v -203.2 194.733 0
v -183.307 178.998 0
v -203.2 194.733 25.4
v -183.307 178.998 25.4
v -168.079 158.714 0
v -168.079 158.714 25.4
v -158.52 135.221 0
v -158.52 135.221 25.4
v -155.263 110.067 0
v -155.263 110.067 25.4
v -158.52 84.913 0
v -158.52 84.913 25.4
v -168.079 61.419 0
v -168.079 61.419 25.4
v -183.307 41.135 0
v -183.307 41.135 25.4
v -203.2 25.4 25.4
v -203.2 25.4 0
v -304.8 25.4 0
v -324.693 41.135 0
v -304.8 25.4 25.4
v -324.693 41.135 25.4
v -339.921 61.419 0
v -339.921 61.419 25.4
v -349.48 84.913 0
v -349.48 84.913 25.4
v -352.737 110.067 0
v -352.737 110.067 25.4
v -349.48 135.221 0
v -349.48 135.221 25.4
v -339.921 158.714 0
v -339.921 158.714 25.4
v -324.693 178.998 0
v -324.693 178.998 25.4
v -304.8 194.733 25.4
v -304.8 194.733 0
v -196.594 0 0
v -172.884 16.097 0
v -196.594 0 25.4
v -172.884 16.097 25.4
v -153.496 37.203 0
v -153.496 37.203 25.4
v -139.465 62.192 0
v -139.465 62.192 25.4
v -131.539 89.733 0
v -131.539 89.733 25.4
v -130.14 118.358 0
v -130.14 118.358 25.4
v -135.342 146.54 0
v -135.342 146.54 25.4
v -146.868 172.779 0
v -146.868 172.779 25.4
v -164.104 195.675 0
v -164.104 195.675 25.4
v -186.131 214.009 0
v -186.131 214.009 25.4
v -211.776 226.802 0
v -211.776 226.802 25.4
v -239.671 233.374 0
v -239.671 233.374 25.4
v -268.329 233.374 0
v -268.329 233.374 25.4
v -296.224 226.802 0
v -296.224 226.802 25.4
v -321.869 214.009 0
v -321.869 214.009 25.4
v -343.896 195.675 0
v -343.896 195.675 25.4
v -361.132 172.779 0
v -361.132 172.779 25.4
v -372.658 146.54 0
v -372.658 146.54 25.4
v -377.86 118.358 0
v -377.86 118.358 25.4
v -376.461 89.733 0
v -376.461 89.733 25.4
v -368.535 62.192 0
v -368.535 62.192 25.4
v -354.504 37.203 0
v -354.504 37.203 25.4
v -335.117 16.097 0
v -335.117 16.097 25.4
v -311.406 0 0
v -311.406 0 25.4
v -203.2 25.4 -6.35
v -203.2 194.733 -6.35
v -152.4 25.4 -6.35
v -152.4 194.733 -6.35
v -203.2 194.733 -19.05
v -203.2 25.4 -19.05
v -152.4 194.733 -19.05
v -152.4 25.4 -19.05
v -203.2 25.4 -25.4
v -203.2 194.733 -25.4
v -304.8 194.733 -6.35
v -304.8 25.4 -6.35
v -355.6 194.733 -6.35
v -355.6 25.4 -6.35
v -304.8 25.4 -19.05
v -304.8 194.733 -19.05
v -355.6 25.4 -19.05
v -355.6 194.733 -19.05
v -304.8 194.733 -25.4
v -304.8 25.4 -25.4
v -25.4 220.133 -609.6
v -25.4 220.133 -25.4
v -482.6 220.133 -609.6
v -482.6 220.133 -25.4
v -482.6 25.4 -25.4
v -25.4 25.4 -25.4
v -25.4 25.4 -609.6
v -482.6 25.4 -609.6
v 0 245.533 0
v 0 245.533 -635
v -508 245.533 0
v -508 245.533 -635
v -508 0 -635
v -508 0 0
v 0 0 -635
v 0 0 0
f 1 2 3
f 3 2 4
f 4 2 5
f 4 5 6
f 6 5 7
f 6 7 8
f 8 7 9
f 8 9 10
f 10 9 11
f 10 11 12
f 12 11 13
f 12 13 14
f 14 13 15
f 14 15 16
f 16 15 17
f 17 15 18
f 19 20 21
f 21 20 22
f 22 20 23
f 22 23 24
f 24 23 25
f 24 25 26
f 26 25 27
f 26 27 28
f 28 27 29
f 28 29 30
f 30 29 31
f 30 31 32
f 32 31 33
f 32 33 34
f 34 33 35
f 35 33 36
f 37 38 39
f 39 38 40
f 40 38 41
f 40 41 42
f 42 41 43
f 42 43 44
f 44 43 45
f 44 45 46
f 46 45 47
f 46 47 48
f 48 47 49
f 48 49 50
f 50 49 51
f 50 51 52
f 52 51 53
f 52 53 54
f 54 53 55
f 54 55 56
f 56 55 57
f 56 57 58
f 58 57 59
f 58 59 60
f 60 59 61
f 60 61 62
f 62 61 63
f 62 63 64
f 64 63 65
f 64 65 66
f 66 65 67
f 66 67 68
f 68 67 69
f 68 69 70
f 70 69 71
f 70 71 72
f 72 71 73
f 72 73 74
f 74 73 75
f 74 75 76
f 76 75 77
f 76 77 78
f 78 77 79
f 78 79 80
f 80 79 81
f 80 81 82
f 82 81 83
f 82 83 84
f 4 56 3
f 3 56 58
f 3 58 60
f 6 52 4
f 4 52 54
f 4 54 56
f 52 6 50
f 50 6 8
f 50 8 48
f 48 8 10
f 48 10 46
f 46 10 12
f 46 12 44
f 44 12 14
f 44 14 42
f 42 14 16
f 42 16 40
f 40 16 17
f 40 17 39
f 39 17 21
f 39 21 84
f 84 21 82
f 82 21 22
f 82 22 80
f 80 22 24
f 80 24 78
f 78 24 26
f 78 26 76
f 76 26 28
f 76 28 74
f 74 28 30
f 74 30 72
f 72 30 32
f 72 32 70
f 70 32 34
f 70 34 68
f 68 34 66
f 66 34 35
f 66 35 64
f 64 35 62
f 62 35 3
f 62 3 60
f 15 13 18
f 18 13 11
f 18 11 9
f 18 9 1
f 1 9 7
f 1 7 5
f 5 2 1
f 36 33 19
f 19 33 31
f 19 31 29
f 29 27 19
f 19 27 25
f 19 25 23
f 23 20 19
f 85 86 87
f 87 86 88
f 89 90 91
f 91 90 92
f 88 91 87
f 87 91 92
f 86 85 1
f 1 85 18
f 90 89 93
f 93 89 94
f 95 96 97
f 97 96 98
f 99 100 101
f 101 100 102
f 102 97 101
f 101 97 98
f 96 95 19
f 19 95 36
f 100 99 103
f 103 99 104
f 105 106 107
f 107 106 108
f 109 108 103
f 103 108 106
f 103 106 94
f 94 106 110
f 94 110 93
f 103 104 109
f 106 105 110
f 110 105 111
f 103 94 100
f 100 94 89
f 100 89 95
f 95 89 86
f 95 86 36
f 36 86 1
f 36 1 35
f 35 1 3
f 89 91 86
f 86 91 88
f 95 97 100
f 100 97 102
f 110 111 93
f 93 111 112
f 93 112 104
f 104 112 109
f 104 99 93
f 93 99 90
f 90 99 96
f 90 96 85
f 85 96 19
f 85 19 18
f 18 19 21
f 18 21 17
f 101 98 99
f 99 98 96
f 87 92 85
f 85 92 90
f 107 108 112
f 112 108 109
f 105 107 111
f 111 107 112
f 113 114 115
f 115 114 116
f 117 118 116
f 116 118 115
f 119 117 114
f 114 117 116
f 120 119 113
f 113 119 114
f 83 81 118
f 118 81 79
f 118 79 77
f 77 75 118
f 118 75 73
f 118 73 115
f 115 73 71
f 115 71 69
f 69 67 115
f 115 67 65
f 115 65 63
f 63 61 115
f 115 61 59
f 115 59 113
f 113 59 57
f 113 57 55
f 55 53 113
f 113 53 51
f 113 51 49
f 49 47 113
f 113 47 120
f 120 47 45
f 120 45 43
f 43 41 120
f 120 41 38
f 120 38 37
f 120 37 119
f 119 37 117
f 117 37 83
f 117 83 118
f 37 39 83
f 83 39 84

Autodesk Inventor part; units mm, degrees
ref_plane "YZ Plane" through (0, 0, 0) normal (1, 0, 0) x (0, 1, 0)
ref_plane "XZ Plane" through (0, 0, 0) normal (0, 1, 0) x (-1, 0, 0)
sketch "Sketch1" plane through (0, 0, 0) normal (0, 1, 0) x (-1, 0, 0)
  line L0 (0, 0) -> (508, 0)
  line L1 (508, 0) -> (508, -635)
  line L2 (508, -635) -> (0, -635)
  line L3 (0, -635) -> (0, 0)
  dimension "d0" = 508
  dimension "d1" = 635
extrude "floor" add sketch "Sketch1" along normal blind 25.4
sketch "Sketch4" plane through (0, 25.4, 0) normal (0, 1, 0) x (1, 0, 0)
  line L0 (-508, 0) -> (0, 0) projected
  line L1 (0, 0) -> (0, 635) projected
  line L2 (0, 0) -> (0, 635)
  line L3 (0, 635) -> (-508, 635) projected
  line L4 (0, 635) -> (-508, 635)
  line L5 (-508, 635) -> (-508, 0)
  line L6 (-508, 0) -> (0, 0)
  line L7 (-25.4, 25.4) -> (-482.6, 25.4)
  line L8 (-482.6, 25.4) -> (-482.6, 609.6)
  line L9 (-482.6, 609.6) -> (-25.4, 609.6)
  line L10 (-25.4, 609.6) -> (-25.4, 25.4)
  dimension "d11" = 25.4
  dimension "d12" = 25.4
  dimension "d13" = 25.4
  dimension "d14" = 25.4
extrude "walls" add sketch "Sketch4" along normal blind 220.1333
sketch "Sketch5" plane through (-508, 0, 0) normal (0, 0, 1) x (1, 0, 0)
  line L0 (25.4, 25.4) -> (482.6, 25.4) projected
  line L1 (254, 25.4) -> (304.8, 25.4)
  line L2 (304.8, 25.4) -> (304.8, 194.7333)
  line L3 (304.8, 194.7333) -> (254, 194.7333)
  line L4 (254, 194.7333) -> (254, 25.4)
  line L5 (254, 25.4) -> (203.2, 25.4)
  line L6 (203.2, 25.4) -> (203.2, 194.7333)
  line L7 (203.2, 194.7333) -> (254, 194.7333)
  point P0 (508, 0)
  dimension "d17" = 50.8
  dimension "d18" = 169.3333
extrude "doorframe" cut sketch "Sketch5" against normal blind 220.1333
sketch "Sketch7" plane through (0, 245.5333, 0) normal (0, 1, 0) x (1, 0, 0)
  line L0 (-482.6, 25.4) -> (-482.6, 609.6) projected
  line L1 (-25.4, 25.4) -> (-25.4, 609.6) projected
  line L2 (-482.6, 609.6) -> (-25.4, 609.6)
  line L3 (-25.4, 609.6) -> (-25.4, 25.4)
  line L4 (-25.4, 25.4) -> (-482.6, 25.4)
  line L5 (-482.6, 25.4) -> (-482.6, 609.6)
  point P0 (0, 0)
extrude "ceiling" add sketch "Sketch7" against normal blind 25.4
sketch "Sketch8" plane through (-304.8, 25.4, 0) normal (1, 0, 0) x (0, 0, -1)
  line L0 (12.7, 169.3333) -> (19.05, 169.3333)
  line L1 (19.05, 169.3333) -> (19.05, 0)
  line L2 (19.05, 0) -> (6.35, 0)
  line L3 (6.35, 0) -> (6.35, 169.3333)
  line L4 (12.7, 169.3333) -> (6.35, 169.3333)
  point P0 (0, -25.4)
  point P1 (0, 169.3333)
  point P2 (25.4, 169.3333)
  point P3 (0, 0)
  point P4 (25.4, 0)
  dimension "d24" = 6.35
  dimension "d25" = 12.7
  dimension "d28" = 169.3333
extrude "left door slot" cut sketch "Sketch8" against normal blind 50.8
ref_plane "mirror door slot" through (-254, 25.4, 0) normal (1, 0, 0) x (0, 0, -1)
mirror "right door slot" about plane through (-254, 25.4, 0) normal (1, 0, 0) of "left door slot"
sketch "Sketch10" plane through (-508, 0, 0) normal (0, 0, 1) x (1, 0, 0)
  line L0 (203.2, 194.7333) -> (304.8, 194.7333)
  line L1 (203.2, 25.4) -> (304.8, 25.4)
  arc A0 (311.4059, 0) -> (196.5941, 0) centre (254, 110.0667) ccw
  arc A1 (203.2, 194.7333) -> (203.2, 25.4) centre (254, 110.0667) ccw
  arc A2 (304.8, 25.4) -> (304.8, 194.7333) centre (254, 110.0667) ccw
  line L2 (203.2, 194.7333) -> (304.8, 194.7333) projected
  line L3 (203.2, 194.7333) -> (203.2, 25.4) projected
  line L4 (508, 0) -> (0, 0) projected
  line L5 (196.5941, 0) -> (311.4059, 0)
  point P0 (254, 194.7333)
  point P1 (203.2, 110.0667)
  dimension "d37" = 169.3333
  dimension "d38" = 101.6
  dimension "d39" = 25.4
extrude "corridor connect" add sketch "Sketch10" along normal blind 25.4
equation "\"d12\" = d11"
equation "\"d13\" = d12"
equation "\"d14\" = d13"
properties part number "main room"
